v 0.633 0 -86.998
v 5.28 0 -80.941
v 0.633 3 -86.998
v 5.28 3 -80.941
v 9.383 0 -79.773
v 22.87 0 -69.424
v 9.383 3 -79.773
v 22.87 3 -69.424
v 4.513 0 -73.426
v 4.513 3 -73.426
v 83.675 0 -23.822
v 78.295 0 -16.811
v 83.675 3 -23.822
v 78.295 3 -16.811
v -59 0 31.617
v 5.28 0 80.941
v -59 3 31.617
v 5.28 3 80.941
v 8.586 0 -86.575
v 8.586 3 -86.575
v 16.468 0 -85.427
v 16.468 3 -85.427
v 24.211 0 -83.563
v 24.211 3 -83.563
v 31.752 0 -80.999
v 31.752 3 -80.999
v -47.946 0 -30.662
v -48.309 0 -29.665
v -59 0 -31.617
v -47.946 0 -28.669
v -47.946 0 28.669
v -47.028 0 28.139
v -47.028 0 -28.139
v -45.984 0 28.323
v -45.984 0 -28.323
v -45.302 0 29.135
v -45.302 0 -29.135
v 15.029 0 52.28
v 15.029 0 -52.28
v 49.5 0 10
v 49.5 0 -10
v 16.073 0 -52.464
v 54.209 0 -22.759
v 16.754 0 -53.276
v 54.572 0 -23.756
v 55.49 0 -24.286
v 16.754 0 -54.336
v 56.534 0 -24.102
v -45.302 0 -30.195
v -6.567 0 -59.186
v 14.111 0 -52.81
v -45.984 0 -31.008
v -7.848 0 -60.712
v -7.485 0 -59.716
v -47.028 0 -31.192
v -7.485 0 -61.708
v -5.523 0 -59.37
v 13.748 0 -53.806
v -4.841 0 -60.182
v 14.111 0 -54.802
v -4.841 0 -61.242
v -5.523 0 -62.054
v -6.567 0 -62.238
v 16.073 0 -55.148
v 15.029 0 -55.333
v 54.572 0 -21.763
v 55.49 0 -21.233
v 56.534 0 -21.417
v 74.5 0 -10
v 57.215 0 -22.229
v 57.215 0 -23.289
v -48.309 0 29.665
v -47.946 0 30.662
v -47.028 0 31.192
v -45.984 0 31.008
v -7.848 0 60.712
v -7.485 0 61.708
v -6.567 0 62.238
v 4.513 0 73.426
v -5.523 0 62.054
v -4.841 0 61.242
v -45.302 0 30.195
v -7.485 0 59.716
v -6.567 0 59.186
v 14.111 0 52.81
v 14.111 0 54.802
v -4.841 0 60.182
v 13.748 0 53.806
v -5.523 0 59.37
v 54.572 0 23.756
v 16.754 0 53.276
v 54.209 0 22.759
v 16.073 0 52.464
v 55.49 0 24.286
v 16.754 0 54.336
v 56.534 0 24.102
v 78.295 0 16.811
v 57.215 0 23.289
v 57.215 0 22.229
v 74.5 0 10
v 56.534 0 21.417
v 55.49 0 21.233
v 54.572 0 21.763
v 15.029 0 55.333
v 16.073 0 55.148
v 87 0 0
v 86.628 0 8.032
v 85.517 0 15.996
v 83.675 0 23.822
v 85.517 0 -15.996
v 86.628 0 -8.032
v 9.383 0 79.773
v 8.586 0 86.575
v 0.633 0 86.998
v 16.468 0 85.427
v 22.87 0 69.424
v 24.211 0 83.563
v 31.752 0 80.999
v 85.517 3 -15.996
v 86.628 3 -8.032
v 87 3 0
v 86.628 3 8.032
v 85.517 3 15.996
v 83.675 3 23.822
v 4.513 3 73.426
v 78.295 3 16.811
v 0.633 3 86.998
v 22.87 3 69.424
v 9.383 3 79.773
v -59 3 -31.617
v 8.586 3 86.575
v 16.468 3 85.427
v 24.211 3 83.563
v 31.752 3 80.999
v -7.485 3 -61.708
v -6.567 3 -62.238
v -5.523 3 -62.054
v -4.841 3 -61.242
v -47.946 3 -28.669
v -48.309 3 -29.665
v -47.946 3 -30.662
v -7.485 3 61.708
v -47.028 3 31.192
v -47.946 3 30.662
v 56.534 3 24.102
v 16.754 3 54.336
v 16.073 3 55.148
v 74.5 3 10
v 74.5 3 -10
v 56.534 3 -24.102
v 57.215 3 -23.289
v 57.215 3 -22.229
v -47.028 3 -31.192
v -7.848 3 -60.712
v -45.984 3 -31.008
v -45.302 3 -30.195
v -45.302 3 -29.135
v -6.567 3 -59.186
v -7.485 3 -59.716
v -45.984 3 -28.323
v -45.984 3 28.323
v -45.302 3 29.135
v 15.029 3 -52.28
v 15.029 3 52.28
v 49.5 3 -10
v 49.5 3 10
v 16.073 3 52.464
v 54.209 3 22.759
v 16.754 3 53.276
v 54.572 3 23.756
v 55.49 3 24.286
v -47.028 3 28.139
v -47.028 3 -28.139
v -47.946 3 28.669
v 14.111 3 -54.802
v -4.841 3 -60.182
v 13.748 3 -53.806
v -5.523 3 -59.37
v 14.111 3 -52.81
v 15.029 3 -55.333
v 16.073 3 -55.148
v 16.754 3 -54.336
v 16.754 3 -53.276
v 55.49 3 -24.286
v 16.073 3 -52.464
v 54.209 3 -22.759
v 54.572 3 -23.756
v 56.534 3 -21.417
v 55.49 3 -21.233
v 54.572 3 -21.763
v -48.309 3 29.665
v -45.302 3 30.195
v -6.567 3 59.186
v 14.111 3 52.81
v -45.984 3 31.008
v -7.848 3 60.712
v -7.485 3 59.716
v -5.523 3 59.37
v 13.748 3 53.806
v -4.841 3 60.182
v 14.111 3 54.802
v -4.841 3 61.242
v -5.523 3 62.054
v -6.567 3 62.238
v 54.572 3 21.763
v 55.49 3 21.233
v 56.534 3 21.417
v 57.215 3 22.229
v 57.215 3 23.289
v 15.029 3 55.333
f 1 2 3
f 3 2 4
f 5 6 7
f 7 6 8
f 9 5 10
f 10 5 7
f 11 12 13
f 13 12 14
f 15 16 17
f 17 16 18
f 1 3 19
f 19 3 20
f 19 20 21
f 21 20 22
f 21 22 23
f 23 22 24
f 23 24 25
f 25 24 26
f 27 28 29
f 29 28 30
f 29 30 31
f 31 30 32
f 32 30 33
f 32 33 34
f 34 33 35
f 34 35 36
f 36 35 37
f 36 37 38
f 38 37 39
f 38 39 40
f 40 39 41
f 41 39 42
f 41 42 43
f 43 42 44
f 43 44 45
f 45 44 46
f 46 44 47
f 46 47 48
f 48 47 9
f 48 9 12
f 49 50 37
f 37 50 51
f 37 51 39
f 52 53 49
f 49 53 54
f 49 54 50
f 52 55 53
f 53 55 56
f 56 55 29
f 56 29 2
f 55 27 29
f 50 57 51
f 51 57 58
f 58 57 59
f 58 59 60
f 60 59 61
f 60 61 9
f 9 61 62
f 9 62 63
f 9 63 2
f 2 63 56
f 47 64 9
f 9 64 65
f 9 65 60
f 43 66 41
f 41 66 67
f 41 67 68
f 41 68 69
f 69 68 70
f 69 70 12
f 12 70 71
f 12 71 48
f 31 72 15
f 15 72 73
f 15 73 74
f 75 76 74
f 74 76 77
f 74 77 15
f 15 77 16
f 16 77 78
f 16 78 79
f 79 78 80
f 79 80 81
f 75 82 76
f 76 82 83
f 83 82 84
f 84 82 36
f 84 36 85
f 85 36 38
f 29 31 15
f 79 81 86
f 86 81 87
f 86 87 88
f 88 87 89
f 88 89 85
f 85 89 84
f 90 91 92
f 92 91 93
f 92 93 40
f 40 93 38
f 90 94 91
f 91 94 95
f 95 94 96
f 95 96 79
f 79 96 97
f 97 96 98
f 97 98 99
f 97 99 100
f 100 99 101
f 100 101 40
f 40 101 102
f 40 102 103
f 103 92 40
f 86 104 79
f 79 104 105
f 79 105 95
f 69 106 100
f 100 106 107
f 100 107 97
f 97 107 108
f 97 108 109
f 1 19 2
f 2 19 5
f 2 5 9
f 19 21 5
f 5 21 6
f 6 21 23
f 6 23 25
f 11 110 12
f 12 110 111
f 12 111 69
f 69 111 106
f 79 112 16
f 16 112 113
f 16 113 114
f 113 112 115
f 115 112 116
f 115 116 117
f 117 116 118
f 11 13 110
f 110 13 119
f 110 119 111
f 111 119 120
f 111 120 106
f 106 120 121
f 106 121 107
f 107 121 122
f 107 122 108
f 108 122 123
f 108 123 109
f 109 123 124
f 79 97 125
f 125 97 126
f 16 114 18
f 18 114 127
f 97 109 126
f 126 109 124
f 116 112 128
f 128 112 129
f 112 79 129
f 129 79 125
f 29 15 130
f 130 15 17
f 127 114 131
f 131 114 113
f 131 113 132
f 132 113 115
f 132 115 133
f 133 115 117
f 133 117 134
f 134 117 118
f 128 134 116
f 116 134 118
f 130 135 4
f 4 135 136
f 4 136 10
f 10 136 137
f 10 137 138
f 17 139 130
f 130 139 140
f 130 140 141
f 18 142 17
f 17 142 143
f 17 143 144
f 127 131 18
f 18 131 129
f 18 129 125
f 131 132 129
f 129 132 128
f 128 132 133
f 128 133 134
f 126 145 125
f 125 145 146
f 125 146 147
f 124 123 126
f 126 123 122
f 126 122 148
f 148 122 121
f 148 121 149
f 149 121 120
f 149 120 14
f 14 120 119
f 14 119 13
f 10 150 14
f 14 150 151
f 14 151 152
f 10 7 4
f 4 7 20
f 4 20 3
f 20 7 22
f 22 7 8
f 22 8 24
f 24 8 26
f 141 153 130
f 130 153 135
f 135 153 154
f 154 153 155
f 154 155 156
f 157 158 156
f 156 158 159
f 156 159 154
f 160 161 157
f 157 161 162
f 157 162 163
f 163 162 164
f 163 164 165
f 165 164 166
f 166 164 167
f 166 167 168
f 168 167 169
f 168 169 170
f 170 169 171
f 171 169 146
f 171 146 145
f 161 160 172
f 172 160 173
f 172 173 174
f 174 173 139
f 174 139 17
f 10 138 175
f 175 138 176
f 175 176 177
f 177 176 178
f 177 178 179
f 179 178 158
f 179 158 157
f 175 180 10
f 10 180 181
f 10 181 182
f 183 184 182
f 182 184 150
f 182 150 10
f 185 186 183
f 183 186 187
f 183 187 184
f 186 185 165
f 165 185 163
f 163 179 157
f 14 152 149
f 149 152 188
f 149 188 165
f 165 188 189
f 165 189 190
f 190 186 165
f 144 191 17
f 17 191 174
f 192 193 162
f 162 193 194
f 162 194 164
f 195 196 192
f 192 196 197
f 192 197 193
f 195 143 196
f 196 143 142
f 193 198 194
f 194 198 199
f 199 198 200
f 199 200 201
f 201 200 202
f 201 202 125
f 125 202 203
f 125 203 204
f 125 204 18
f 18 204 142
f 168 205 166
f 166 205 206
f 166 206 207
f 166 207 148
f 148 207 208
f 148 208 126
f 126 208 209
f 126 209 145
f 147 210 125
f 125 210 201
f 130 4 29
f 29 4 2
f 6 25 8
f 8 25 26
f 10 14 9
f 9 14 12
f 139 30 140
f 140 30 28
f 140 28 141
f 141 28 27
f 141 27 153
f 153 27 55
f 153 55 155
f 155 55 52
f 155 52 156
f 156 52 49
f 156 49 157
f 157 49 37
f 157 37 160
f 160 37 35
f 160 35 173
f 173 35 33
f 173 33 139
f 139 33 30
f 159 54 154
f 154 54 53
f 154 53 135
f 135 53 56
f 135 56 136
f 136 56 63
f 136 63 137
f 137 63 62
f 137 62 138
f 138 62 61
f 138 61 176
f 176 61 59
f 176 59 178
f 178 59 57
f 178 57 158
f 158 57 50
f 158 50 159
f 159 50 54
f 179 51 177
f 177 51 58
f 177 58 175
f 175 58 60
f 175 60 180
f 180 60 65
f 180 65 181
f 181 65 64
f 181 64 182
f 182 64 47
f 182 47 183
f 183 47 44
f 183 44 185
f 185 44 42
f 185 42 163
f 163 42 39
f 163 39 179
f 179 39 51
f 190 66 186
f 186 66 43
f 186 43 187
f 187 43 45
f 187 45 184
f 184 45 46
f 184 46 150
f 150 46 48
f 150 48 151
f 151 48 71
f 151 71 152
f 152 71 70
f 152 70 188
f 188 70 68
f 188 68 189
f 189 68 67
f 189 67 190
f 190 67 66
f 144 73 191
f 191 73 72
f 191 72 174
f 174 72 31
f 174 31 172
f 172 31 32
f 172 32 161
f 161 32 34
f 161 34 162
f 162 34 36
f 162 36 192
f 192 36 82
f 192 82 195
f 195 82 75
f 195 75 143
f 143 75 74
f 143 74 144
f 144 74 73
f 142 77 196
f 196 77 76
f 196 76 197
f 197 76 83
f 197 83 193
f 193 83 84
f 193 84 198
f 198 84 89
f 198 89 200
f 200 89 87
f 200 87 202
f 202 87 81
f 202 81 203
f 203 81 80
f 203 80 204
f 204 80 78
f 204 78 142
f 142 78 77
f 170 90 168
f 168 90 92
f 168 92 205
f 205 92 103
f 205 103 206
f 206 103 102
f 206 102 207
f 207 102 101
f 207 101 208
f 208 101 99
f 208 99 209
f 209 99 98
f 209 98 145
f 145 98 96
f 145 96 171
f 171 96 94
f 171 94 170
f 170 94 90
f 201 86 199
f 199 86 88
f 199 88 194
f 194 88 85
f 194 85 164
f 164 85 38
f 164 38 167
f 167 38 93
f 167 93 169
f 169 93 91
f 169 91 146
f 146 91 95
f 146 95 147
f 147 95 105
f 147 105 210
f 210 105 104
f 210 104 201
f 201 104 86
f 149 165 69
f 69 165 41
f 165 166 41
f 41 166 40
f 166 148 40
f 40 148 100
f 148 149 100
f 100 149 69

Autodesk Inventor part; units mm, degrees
ref_plane "YZ Plane" through (0, 0, 0) normal (1, 0, 0) x (0, 1, 0)
ref_plane "XZ Plane" through (0, 0, 0) normal (0, 1, 0) x (-1, 0, 0)
ref_plane "XY Plane" through (0, 0, 0) normal (0, 0, 1) x (1, 0, 0)
sketch "Boceto1" plane through (0, 0, 0) normal (0, 1, 0) x (-1, 0, 0)
  line L0 (0, 0) -> (0, -87) construction
  line L1 (0, 0) -> (0, 83.8978) construction
  line L2 (0, 0) -> (-87, 0) construction
  line L3 (0, 0) -> (59, 0) construction
  line L4 (-74.5, -10) -> (-49.5, -10)
  line L5 (-49.5, -10) -> (-49.5, 10)
  line L6 (-49.5, 10) -> (-74.5, 10)
  line L7 (-74.5, 10) -> (-74.5, -10)
  line L8 (-74.5, -10) -> (-49.5, 10) construction
  line L9 (-49.5, -10) -> (-74.5, 10) construction
  line L10 (-18, 63.0769) -> (-64.0145, 27.7688)
  line L11 (9, 69.9829) -> (55.0145, 34.6747)
  line L12 (9, 69.9829) -> (20.2282, 84.6157)
  line L13 (-18, 63.0769) -> (-31.752, 80.9988)
  line L14 (-64.0145, 27.7688) -> (-75.6609, 42.9467)
  line L15 (-18, -63.0769) -> (-64.0145, -27.7688)
  line L16 (9, -69.9829) -> (55.0145, -34.6747)
  line L17 (9, -69.9829) -> (20.2282, -84.6157)
  line L18 (-18, -63.0769) -> (-31.752, -80.9988)
  line L19 (-64.0145, -27.7688) -> (-75.6609, -42.9467)
  arc A0 (-75.6609, 42.9467) -> (-75.6609, -42.9467) centre (0, 0) ccw
  arc A1 (20.2282, 84.6157) -> (-31.752, 80.9988) centre (0, 0) ccw
  arc A2 (-31.752, -80.9988) -> (20.2282, -84.6157) centre (0, 0) ccw
  line L20 (59, 37.9189) -> (59, -37.9189)
  line L21 (58.0583, 38.6415) -> (59, 37.9189)
  line L22 (55.0145, 34.6747) -> (58.0583, 38.6415)
  line L23 (58.0583, -38.6415) -> (59, -37.9189)
  line L24 (55.0145, -34.6747) -> (58.0583, -38.6415)
  circle A3 centre (-15.2979, 53.8061) radius 1.55
  circle A4 centre (-55.7589, 22.7593) radius 1.55
  line L25 (-41.0072, 45.4229) -> (-35.5284, 38.2827) construction
  line L26 (-15.2979, 53.8061) -> (-55.7589, 22.7593) construction
  line L27 (32.0072, 52.3288) -> (22.9685, 40.5493) construction
  circle A5 centre (6.2979, 60.712) radius 1.55
  circle A6 centre (46.7589, 29.6652) radius 1.55
  circle A7 centre (-15.2979, -53.8061) radius 1.55
  circle A8 centre (-55.7589, -22.7593) radius 1.55
  circle A9 centre (6.2979, -60.712) radius 1.55
  circle A10 centre (46.7589, -29.6652) radius 1.55
  line L28 (46.7589, 29.6652) -> (6.2979, 60.712) construction
  point P0 (-62, 0)
  point P1 (-74.5, 0)
  point P2 (26.5284, 45.1886)
  dimension "d1" = 25
  dimension "d2" = 20
  dimension "d9" = 52.5
  dimension "d10" = 52.5
  dimension "d11" = 61
  dimension "d12" = 61
  dimension "d13" = 58
  dimension "d17" = 90
  dimension "d18" = 9
  dimension "d19" = 18
  dimension "d20" = 58
  dimension "d21" = 90
  dimension "d22" = 90
  dimension "d23" = 87
  dimension "d24" = 87
  dimension "d26" = 59
  dimension "d27" = 5
  dimension "d28" = 5
  dimension "d29" = 3.1
  dimension "d30" = 3.1
  dimension "d31" = 51
  dimension "d32" = 9
  dimension "d37" = 90
  dimension "d38" = 3.1
  dimension "d39" = 3.1
  dimension "d40" = 51
  dimension "d41" = 9
  dimension "d54" = 62
extrude "Extrusión1" add sketch "Boceto1" along normal blind 3
sketch "Boceto5" plane through (0, 3, 0) normal (0, 1, 0) x (1, 0, 0)
  arc A0 (75.6609, 42.9467) -> (75.6609, -42.9467) centre (0, 0) ccw construction
  line L0 (87, 0) -> (-107.1861, 0) construction
  line L1 (-9, -69.9829) -> (-55.0145, -34.6747) projected
  line L2 (-9, -69.9829) -> (5.2804, -80.9406)
  line L3 (5.2804, -80.9406) -> (0.6326, -86.9977)
  arc A1 (31.752, -80.9988) -> (-20.2282, -84.6157) centre (0, 0) ccw projected
  line L4 (18, -63.0769) -> (31.752, -80.9988) projected
  line L5 (18, -63.0769) -> (4.513, -73.4259)
  line L6 (4.513, -73.4259) -> (9.3831, -79.7727)
  line L7 (9.3831, -79.7727) -> (22.8701, -69.4238)
  line L8 (-55.0145, -34.6747) -> (-59, -31.6165)
  line L9 (-59, -37.9189) -> (-59, 37.9189) projected
  arc A2 (-20.2282, -84.6157) -> (31.752, -80.9988) centre (0, 0) ccw projected
  line L10 (18, -63.0769) -> (31.752, -80.9988) projected
  line L11 (64.0145, -27.7688) -> (18, -63.0769) projected
  line L12 (75.6609, -42.9467) -> (64.0145, -27.7688) projected
  arc A3 (75.6609, -42.9467) -> (75.6609, 42.9467) centre (0, 0) ccw projected
  line L13 (64.0145, 27.7688) -> (75.6609, 42.9467) projected
  line L14 (18, 63.0769) -> (64.0145, 27.7688) projected
  line L15 (31.752, 80.9988) -> (18, 63.0769) projected
  arc A4 (31.752, 80.9988) -> (-20.2282, 84.6157) centre (0, 0) ccw projected
  line L16 (-9, 69.9829) -> (-20.2282, 84.6157) projected
  line L17 (-55.0145, 34.6747) -> (-9, 69.9829) projected
  line L18 (-58.0583, 38.6415) -> (-55.0145, 34.6747) projected
  line L19 (-59, 37.9189) -> (-58.0583, 38.6415) projected
  line L20 (-59, -37.9189) -> (-59, 37.9189) projected
  line L21 (-58.0583, -38.6415) -> (-59, -37.9189) projected
  line L22 (-55.0145, -34.6747) -> (-58.0583, -38.6415) projected
  line L23 (-9, -69.9829) -> (-55.0145, -34.6747) projected
  line L24 (-20.2282, -84.6157) -> (-9, -69.9829) projected
  circle A5 centre (-46.7589, 29.6652) radius 1.55 projected
  circle A6 centre (-6.2979, 60.712) radius 1.55 projected
  circle A7 centre (15.2979, 53.8061) radius 1.55 projected
  circle A8 centre (55.7589, 22.7593) radius 1.55 projected
  circle A9 centre (-46.7589, -29.6652) radius 1.55 projected
  circle A10 centre (-6.2979, -60.712) radius 1.55 projected
  circle A11 centre (55.7589, -22.7593) radius 1.55 projected
  circle A12 centre (15.2979, -53.8061) radius 1.55 projected
  line L25 (74.5, -10) -> (74.5, 10) projected
  line L26 (49.5, -10) -> (74.5, -10) projected
  line L27 (49.5, 10) -> (49.5, -10) projected
  line L28 (74.5, 10) -> (49.5, 10) projected
  line L29 (64.0145, -27.7688) -> (18, -63.0769) projected
  line L30 (64.0145, -27.7688) -> (78.2949, -16.8111)
  line L31 (78.2949, -16.8111) -> (83.6749, -23.8225)
  point P0 (-55.0145, -34.6747)
  point P1 (-9, -69.9829)
  point P2 (-20.2282, -84.6157)
  point P3 (-20.2282, 84.6157)
  point P4 (31.752, -80.9988)
  point P5 (75.6609, 42.9467)
  point P6 (-20.2282, -84.6157)
  dimension "d66" = 18
  dimension "d67" = 17
  dimension "d68" = 8
  dimension "d69" = 18
extrude "Extrusión3" cut sketch "Boceto5" against normal blind 10 contours L24 A1 L16 L17 L18 L19 L9 L21 L22 L1 | L2 L3 A2 L24 | L22 L21 L9 L8 | L4 L11 L12 A1 | A1 L13 L14 L15 | L12 L30 L31 A1 | L7 L6 L5 L4
mirror "Simetría1" about plane through (0, 0, 0) normal (0, 0, 1) of "Extrusión3"
ref_plane "Plano de trabajo1" through (0, 0, 0) normal (0, 0, 1) x (1, 0, 0)
properties part number "newbaseeditado"
